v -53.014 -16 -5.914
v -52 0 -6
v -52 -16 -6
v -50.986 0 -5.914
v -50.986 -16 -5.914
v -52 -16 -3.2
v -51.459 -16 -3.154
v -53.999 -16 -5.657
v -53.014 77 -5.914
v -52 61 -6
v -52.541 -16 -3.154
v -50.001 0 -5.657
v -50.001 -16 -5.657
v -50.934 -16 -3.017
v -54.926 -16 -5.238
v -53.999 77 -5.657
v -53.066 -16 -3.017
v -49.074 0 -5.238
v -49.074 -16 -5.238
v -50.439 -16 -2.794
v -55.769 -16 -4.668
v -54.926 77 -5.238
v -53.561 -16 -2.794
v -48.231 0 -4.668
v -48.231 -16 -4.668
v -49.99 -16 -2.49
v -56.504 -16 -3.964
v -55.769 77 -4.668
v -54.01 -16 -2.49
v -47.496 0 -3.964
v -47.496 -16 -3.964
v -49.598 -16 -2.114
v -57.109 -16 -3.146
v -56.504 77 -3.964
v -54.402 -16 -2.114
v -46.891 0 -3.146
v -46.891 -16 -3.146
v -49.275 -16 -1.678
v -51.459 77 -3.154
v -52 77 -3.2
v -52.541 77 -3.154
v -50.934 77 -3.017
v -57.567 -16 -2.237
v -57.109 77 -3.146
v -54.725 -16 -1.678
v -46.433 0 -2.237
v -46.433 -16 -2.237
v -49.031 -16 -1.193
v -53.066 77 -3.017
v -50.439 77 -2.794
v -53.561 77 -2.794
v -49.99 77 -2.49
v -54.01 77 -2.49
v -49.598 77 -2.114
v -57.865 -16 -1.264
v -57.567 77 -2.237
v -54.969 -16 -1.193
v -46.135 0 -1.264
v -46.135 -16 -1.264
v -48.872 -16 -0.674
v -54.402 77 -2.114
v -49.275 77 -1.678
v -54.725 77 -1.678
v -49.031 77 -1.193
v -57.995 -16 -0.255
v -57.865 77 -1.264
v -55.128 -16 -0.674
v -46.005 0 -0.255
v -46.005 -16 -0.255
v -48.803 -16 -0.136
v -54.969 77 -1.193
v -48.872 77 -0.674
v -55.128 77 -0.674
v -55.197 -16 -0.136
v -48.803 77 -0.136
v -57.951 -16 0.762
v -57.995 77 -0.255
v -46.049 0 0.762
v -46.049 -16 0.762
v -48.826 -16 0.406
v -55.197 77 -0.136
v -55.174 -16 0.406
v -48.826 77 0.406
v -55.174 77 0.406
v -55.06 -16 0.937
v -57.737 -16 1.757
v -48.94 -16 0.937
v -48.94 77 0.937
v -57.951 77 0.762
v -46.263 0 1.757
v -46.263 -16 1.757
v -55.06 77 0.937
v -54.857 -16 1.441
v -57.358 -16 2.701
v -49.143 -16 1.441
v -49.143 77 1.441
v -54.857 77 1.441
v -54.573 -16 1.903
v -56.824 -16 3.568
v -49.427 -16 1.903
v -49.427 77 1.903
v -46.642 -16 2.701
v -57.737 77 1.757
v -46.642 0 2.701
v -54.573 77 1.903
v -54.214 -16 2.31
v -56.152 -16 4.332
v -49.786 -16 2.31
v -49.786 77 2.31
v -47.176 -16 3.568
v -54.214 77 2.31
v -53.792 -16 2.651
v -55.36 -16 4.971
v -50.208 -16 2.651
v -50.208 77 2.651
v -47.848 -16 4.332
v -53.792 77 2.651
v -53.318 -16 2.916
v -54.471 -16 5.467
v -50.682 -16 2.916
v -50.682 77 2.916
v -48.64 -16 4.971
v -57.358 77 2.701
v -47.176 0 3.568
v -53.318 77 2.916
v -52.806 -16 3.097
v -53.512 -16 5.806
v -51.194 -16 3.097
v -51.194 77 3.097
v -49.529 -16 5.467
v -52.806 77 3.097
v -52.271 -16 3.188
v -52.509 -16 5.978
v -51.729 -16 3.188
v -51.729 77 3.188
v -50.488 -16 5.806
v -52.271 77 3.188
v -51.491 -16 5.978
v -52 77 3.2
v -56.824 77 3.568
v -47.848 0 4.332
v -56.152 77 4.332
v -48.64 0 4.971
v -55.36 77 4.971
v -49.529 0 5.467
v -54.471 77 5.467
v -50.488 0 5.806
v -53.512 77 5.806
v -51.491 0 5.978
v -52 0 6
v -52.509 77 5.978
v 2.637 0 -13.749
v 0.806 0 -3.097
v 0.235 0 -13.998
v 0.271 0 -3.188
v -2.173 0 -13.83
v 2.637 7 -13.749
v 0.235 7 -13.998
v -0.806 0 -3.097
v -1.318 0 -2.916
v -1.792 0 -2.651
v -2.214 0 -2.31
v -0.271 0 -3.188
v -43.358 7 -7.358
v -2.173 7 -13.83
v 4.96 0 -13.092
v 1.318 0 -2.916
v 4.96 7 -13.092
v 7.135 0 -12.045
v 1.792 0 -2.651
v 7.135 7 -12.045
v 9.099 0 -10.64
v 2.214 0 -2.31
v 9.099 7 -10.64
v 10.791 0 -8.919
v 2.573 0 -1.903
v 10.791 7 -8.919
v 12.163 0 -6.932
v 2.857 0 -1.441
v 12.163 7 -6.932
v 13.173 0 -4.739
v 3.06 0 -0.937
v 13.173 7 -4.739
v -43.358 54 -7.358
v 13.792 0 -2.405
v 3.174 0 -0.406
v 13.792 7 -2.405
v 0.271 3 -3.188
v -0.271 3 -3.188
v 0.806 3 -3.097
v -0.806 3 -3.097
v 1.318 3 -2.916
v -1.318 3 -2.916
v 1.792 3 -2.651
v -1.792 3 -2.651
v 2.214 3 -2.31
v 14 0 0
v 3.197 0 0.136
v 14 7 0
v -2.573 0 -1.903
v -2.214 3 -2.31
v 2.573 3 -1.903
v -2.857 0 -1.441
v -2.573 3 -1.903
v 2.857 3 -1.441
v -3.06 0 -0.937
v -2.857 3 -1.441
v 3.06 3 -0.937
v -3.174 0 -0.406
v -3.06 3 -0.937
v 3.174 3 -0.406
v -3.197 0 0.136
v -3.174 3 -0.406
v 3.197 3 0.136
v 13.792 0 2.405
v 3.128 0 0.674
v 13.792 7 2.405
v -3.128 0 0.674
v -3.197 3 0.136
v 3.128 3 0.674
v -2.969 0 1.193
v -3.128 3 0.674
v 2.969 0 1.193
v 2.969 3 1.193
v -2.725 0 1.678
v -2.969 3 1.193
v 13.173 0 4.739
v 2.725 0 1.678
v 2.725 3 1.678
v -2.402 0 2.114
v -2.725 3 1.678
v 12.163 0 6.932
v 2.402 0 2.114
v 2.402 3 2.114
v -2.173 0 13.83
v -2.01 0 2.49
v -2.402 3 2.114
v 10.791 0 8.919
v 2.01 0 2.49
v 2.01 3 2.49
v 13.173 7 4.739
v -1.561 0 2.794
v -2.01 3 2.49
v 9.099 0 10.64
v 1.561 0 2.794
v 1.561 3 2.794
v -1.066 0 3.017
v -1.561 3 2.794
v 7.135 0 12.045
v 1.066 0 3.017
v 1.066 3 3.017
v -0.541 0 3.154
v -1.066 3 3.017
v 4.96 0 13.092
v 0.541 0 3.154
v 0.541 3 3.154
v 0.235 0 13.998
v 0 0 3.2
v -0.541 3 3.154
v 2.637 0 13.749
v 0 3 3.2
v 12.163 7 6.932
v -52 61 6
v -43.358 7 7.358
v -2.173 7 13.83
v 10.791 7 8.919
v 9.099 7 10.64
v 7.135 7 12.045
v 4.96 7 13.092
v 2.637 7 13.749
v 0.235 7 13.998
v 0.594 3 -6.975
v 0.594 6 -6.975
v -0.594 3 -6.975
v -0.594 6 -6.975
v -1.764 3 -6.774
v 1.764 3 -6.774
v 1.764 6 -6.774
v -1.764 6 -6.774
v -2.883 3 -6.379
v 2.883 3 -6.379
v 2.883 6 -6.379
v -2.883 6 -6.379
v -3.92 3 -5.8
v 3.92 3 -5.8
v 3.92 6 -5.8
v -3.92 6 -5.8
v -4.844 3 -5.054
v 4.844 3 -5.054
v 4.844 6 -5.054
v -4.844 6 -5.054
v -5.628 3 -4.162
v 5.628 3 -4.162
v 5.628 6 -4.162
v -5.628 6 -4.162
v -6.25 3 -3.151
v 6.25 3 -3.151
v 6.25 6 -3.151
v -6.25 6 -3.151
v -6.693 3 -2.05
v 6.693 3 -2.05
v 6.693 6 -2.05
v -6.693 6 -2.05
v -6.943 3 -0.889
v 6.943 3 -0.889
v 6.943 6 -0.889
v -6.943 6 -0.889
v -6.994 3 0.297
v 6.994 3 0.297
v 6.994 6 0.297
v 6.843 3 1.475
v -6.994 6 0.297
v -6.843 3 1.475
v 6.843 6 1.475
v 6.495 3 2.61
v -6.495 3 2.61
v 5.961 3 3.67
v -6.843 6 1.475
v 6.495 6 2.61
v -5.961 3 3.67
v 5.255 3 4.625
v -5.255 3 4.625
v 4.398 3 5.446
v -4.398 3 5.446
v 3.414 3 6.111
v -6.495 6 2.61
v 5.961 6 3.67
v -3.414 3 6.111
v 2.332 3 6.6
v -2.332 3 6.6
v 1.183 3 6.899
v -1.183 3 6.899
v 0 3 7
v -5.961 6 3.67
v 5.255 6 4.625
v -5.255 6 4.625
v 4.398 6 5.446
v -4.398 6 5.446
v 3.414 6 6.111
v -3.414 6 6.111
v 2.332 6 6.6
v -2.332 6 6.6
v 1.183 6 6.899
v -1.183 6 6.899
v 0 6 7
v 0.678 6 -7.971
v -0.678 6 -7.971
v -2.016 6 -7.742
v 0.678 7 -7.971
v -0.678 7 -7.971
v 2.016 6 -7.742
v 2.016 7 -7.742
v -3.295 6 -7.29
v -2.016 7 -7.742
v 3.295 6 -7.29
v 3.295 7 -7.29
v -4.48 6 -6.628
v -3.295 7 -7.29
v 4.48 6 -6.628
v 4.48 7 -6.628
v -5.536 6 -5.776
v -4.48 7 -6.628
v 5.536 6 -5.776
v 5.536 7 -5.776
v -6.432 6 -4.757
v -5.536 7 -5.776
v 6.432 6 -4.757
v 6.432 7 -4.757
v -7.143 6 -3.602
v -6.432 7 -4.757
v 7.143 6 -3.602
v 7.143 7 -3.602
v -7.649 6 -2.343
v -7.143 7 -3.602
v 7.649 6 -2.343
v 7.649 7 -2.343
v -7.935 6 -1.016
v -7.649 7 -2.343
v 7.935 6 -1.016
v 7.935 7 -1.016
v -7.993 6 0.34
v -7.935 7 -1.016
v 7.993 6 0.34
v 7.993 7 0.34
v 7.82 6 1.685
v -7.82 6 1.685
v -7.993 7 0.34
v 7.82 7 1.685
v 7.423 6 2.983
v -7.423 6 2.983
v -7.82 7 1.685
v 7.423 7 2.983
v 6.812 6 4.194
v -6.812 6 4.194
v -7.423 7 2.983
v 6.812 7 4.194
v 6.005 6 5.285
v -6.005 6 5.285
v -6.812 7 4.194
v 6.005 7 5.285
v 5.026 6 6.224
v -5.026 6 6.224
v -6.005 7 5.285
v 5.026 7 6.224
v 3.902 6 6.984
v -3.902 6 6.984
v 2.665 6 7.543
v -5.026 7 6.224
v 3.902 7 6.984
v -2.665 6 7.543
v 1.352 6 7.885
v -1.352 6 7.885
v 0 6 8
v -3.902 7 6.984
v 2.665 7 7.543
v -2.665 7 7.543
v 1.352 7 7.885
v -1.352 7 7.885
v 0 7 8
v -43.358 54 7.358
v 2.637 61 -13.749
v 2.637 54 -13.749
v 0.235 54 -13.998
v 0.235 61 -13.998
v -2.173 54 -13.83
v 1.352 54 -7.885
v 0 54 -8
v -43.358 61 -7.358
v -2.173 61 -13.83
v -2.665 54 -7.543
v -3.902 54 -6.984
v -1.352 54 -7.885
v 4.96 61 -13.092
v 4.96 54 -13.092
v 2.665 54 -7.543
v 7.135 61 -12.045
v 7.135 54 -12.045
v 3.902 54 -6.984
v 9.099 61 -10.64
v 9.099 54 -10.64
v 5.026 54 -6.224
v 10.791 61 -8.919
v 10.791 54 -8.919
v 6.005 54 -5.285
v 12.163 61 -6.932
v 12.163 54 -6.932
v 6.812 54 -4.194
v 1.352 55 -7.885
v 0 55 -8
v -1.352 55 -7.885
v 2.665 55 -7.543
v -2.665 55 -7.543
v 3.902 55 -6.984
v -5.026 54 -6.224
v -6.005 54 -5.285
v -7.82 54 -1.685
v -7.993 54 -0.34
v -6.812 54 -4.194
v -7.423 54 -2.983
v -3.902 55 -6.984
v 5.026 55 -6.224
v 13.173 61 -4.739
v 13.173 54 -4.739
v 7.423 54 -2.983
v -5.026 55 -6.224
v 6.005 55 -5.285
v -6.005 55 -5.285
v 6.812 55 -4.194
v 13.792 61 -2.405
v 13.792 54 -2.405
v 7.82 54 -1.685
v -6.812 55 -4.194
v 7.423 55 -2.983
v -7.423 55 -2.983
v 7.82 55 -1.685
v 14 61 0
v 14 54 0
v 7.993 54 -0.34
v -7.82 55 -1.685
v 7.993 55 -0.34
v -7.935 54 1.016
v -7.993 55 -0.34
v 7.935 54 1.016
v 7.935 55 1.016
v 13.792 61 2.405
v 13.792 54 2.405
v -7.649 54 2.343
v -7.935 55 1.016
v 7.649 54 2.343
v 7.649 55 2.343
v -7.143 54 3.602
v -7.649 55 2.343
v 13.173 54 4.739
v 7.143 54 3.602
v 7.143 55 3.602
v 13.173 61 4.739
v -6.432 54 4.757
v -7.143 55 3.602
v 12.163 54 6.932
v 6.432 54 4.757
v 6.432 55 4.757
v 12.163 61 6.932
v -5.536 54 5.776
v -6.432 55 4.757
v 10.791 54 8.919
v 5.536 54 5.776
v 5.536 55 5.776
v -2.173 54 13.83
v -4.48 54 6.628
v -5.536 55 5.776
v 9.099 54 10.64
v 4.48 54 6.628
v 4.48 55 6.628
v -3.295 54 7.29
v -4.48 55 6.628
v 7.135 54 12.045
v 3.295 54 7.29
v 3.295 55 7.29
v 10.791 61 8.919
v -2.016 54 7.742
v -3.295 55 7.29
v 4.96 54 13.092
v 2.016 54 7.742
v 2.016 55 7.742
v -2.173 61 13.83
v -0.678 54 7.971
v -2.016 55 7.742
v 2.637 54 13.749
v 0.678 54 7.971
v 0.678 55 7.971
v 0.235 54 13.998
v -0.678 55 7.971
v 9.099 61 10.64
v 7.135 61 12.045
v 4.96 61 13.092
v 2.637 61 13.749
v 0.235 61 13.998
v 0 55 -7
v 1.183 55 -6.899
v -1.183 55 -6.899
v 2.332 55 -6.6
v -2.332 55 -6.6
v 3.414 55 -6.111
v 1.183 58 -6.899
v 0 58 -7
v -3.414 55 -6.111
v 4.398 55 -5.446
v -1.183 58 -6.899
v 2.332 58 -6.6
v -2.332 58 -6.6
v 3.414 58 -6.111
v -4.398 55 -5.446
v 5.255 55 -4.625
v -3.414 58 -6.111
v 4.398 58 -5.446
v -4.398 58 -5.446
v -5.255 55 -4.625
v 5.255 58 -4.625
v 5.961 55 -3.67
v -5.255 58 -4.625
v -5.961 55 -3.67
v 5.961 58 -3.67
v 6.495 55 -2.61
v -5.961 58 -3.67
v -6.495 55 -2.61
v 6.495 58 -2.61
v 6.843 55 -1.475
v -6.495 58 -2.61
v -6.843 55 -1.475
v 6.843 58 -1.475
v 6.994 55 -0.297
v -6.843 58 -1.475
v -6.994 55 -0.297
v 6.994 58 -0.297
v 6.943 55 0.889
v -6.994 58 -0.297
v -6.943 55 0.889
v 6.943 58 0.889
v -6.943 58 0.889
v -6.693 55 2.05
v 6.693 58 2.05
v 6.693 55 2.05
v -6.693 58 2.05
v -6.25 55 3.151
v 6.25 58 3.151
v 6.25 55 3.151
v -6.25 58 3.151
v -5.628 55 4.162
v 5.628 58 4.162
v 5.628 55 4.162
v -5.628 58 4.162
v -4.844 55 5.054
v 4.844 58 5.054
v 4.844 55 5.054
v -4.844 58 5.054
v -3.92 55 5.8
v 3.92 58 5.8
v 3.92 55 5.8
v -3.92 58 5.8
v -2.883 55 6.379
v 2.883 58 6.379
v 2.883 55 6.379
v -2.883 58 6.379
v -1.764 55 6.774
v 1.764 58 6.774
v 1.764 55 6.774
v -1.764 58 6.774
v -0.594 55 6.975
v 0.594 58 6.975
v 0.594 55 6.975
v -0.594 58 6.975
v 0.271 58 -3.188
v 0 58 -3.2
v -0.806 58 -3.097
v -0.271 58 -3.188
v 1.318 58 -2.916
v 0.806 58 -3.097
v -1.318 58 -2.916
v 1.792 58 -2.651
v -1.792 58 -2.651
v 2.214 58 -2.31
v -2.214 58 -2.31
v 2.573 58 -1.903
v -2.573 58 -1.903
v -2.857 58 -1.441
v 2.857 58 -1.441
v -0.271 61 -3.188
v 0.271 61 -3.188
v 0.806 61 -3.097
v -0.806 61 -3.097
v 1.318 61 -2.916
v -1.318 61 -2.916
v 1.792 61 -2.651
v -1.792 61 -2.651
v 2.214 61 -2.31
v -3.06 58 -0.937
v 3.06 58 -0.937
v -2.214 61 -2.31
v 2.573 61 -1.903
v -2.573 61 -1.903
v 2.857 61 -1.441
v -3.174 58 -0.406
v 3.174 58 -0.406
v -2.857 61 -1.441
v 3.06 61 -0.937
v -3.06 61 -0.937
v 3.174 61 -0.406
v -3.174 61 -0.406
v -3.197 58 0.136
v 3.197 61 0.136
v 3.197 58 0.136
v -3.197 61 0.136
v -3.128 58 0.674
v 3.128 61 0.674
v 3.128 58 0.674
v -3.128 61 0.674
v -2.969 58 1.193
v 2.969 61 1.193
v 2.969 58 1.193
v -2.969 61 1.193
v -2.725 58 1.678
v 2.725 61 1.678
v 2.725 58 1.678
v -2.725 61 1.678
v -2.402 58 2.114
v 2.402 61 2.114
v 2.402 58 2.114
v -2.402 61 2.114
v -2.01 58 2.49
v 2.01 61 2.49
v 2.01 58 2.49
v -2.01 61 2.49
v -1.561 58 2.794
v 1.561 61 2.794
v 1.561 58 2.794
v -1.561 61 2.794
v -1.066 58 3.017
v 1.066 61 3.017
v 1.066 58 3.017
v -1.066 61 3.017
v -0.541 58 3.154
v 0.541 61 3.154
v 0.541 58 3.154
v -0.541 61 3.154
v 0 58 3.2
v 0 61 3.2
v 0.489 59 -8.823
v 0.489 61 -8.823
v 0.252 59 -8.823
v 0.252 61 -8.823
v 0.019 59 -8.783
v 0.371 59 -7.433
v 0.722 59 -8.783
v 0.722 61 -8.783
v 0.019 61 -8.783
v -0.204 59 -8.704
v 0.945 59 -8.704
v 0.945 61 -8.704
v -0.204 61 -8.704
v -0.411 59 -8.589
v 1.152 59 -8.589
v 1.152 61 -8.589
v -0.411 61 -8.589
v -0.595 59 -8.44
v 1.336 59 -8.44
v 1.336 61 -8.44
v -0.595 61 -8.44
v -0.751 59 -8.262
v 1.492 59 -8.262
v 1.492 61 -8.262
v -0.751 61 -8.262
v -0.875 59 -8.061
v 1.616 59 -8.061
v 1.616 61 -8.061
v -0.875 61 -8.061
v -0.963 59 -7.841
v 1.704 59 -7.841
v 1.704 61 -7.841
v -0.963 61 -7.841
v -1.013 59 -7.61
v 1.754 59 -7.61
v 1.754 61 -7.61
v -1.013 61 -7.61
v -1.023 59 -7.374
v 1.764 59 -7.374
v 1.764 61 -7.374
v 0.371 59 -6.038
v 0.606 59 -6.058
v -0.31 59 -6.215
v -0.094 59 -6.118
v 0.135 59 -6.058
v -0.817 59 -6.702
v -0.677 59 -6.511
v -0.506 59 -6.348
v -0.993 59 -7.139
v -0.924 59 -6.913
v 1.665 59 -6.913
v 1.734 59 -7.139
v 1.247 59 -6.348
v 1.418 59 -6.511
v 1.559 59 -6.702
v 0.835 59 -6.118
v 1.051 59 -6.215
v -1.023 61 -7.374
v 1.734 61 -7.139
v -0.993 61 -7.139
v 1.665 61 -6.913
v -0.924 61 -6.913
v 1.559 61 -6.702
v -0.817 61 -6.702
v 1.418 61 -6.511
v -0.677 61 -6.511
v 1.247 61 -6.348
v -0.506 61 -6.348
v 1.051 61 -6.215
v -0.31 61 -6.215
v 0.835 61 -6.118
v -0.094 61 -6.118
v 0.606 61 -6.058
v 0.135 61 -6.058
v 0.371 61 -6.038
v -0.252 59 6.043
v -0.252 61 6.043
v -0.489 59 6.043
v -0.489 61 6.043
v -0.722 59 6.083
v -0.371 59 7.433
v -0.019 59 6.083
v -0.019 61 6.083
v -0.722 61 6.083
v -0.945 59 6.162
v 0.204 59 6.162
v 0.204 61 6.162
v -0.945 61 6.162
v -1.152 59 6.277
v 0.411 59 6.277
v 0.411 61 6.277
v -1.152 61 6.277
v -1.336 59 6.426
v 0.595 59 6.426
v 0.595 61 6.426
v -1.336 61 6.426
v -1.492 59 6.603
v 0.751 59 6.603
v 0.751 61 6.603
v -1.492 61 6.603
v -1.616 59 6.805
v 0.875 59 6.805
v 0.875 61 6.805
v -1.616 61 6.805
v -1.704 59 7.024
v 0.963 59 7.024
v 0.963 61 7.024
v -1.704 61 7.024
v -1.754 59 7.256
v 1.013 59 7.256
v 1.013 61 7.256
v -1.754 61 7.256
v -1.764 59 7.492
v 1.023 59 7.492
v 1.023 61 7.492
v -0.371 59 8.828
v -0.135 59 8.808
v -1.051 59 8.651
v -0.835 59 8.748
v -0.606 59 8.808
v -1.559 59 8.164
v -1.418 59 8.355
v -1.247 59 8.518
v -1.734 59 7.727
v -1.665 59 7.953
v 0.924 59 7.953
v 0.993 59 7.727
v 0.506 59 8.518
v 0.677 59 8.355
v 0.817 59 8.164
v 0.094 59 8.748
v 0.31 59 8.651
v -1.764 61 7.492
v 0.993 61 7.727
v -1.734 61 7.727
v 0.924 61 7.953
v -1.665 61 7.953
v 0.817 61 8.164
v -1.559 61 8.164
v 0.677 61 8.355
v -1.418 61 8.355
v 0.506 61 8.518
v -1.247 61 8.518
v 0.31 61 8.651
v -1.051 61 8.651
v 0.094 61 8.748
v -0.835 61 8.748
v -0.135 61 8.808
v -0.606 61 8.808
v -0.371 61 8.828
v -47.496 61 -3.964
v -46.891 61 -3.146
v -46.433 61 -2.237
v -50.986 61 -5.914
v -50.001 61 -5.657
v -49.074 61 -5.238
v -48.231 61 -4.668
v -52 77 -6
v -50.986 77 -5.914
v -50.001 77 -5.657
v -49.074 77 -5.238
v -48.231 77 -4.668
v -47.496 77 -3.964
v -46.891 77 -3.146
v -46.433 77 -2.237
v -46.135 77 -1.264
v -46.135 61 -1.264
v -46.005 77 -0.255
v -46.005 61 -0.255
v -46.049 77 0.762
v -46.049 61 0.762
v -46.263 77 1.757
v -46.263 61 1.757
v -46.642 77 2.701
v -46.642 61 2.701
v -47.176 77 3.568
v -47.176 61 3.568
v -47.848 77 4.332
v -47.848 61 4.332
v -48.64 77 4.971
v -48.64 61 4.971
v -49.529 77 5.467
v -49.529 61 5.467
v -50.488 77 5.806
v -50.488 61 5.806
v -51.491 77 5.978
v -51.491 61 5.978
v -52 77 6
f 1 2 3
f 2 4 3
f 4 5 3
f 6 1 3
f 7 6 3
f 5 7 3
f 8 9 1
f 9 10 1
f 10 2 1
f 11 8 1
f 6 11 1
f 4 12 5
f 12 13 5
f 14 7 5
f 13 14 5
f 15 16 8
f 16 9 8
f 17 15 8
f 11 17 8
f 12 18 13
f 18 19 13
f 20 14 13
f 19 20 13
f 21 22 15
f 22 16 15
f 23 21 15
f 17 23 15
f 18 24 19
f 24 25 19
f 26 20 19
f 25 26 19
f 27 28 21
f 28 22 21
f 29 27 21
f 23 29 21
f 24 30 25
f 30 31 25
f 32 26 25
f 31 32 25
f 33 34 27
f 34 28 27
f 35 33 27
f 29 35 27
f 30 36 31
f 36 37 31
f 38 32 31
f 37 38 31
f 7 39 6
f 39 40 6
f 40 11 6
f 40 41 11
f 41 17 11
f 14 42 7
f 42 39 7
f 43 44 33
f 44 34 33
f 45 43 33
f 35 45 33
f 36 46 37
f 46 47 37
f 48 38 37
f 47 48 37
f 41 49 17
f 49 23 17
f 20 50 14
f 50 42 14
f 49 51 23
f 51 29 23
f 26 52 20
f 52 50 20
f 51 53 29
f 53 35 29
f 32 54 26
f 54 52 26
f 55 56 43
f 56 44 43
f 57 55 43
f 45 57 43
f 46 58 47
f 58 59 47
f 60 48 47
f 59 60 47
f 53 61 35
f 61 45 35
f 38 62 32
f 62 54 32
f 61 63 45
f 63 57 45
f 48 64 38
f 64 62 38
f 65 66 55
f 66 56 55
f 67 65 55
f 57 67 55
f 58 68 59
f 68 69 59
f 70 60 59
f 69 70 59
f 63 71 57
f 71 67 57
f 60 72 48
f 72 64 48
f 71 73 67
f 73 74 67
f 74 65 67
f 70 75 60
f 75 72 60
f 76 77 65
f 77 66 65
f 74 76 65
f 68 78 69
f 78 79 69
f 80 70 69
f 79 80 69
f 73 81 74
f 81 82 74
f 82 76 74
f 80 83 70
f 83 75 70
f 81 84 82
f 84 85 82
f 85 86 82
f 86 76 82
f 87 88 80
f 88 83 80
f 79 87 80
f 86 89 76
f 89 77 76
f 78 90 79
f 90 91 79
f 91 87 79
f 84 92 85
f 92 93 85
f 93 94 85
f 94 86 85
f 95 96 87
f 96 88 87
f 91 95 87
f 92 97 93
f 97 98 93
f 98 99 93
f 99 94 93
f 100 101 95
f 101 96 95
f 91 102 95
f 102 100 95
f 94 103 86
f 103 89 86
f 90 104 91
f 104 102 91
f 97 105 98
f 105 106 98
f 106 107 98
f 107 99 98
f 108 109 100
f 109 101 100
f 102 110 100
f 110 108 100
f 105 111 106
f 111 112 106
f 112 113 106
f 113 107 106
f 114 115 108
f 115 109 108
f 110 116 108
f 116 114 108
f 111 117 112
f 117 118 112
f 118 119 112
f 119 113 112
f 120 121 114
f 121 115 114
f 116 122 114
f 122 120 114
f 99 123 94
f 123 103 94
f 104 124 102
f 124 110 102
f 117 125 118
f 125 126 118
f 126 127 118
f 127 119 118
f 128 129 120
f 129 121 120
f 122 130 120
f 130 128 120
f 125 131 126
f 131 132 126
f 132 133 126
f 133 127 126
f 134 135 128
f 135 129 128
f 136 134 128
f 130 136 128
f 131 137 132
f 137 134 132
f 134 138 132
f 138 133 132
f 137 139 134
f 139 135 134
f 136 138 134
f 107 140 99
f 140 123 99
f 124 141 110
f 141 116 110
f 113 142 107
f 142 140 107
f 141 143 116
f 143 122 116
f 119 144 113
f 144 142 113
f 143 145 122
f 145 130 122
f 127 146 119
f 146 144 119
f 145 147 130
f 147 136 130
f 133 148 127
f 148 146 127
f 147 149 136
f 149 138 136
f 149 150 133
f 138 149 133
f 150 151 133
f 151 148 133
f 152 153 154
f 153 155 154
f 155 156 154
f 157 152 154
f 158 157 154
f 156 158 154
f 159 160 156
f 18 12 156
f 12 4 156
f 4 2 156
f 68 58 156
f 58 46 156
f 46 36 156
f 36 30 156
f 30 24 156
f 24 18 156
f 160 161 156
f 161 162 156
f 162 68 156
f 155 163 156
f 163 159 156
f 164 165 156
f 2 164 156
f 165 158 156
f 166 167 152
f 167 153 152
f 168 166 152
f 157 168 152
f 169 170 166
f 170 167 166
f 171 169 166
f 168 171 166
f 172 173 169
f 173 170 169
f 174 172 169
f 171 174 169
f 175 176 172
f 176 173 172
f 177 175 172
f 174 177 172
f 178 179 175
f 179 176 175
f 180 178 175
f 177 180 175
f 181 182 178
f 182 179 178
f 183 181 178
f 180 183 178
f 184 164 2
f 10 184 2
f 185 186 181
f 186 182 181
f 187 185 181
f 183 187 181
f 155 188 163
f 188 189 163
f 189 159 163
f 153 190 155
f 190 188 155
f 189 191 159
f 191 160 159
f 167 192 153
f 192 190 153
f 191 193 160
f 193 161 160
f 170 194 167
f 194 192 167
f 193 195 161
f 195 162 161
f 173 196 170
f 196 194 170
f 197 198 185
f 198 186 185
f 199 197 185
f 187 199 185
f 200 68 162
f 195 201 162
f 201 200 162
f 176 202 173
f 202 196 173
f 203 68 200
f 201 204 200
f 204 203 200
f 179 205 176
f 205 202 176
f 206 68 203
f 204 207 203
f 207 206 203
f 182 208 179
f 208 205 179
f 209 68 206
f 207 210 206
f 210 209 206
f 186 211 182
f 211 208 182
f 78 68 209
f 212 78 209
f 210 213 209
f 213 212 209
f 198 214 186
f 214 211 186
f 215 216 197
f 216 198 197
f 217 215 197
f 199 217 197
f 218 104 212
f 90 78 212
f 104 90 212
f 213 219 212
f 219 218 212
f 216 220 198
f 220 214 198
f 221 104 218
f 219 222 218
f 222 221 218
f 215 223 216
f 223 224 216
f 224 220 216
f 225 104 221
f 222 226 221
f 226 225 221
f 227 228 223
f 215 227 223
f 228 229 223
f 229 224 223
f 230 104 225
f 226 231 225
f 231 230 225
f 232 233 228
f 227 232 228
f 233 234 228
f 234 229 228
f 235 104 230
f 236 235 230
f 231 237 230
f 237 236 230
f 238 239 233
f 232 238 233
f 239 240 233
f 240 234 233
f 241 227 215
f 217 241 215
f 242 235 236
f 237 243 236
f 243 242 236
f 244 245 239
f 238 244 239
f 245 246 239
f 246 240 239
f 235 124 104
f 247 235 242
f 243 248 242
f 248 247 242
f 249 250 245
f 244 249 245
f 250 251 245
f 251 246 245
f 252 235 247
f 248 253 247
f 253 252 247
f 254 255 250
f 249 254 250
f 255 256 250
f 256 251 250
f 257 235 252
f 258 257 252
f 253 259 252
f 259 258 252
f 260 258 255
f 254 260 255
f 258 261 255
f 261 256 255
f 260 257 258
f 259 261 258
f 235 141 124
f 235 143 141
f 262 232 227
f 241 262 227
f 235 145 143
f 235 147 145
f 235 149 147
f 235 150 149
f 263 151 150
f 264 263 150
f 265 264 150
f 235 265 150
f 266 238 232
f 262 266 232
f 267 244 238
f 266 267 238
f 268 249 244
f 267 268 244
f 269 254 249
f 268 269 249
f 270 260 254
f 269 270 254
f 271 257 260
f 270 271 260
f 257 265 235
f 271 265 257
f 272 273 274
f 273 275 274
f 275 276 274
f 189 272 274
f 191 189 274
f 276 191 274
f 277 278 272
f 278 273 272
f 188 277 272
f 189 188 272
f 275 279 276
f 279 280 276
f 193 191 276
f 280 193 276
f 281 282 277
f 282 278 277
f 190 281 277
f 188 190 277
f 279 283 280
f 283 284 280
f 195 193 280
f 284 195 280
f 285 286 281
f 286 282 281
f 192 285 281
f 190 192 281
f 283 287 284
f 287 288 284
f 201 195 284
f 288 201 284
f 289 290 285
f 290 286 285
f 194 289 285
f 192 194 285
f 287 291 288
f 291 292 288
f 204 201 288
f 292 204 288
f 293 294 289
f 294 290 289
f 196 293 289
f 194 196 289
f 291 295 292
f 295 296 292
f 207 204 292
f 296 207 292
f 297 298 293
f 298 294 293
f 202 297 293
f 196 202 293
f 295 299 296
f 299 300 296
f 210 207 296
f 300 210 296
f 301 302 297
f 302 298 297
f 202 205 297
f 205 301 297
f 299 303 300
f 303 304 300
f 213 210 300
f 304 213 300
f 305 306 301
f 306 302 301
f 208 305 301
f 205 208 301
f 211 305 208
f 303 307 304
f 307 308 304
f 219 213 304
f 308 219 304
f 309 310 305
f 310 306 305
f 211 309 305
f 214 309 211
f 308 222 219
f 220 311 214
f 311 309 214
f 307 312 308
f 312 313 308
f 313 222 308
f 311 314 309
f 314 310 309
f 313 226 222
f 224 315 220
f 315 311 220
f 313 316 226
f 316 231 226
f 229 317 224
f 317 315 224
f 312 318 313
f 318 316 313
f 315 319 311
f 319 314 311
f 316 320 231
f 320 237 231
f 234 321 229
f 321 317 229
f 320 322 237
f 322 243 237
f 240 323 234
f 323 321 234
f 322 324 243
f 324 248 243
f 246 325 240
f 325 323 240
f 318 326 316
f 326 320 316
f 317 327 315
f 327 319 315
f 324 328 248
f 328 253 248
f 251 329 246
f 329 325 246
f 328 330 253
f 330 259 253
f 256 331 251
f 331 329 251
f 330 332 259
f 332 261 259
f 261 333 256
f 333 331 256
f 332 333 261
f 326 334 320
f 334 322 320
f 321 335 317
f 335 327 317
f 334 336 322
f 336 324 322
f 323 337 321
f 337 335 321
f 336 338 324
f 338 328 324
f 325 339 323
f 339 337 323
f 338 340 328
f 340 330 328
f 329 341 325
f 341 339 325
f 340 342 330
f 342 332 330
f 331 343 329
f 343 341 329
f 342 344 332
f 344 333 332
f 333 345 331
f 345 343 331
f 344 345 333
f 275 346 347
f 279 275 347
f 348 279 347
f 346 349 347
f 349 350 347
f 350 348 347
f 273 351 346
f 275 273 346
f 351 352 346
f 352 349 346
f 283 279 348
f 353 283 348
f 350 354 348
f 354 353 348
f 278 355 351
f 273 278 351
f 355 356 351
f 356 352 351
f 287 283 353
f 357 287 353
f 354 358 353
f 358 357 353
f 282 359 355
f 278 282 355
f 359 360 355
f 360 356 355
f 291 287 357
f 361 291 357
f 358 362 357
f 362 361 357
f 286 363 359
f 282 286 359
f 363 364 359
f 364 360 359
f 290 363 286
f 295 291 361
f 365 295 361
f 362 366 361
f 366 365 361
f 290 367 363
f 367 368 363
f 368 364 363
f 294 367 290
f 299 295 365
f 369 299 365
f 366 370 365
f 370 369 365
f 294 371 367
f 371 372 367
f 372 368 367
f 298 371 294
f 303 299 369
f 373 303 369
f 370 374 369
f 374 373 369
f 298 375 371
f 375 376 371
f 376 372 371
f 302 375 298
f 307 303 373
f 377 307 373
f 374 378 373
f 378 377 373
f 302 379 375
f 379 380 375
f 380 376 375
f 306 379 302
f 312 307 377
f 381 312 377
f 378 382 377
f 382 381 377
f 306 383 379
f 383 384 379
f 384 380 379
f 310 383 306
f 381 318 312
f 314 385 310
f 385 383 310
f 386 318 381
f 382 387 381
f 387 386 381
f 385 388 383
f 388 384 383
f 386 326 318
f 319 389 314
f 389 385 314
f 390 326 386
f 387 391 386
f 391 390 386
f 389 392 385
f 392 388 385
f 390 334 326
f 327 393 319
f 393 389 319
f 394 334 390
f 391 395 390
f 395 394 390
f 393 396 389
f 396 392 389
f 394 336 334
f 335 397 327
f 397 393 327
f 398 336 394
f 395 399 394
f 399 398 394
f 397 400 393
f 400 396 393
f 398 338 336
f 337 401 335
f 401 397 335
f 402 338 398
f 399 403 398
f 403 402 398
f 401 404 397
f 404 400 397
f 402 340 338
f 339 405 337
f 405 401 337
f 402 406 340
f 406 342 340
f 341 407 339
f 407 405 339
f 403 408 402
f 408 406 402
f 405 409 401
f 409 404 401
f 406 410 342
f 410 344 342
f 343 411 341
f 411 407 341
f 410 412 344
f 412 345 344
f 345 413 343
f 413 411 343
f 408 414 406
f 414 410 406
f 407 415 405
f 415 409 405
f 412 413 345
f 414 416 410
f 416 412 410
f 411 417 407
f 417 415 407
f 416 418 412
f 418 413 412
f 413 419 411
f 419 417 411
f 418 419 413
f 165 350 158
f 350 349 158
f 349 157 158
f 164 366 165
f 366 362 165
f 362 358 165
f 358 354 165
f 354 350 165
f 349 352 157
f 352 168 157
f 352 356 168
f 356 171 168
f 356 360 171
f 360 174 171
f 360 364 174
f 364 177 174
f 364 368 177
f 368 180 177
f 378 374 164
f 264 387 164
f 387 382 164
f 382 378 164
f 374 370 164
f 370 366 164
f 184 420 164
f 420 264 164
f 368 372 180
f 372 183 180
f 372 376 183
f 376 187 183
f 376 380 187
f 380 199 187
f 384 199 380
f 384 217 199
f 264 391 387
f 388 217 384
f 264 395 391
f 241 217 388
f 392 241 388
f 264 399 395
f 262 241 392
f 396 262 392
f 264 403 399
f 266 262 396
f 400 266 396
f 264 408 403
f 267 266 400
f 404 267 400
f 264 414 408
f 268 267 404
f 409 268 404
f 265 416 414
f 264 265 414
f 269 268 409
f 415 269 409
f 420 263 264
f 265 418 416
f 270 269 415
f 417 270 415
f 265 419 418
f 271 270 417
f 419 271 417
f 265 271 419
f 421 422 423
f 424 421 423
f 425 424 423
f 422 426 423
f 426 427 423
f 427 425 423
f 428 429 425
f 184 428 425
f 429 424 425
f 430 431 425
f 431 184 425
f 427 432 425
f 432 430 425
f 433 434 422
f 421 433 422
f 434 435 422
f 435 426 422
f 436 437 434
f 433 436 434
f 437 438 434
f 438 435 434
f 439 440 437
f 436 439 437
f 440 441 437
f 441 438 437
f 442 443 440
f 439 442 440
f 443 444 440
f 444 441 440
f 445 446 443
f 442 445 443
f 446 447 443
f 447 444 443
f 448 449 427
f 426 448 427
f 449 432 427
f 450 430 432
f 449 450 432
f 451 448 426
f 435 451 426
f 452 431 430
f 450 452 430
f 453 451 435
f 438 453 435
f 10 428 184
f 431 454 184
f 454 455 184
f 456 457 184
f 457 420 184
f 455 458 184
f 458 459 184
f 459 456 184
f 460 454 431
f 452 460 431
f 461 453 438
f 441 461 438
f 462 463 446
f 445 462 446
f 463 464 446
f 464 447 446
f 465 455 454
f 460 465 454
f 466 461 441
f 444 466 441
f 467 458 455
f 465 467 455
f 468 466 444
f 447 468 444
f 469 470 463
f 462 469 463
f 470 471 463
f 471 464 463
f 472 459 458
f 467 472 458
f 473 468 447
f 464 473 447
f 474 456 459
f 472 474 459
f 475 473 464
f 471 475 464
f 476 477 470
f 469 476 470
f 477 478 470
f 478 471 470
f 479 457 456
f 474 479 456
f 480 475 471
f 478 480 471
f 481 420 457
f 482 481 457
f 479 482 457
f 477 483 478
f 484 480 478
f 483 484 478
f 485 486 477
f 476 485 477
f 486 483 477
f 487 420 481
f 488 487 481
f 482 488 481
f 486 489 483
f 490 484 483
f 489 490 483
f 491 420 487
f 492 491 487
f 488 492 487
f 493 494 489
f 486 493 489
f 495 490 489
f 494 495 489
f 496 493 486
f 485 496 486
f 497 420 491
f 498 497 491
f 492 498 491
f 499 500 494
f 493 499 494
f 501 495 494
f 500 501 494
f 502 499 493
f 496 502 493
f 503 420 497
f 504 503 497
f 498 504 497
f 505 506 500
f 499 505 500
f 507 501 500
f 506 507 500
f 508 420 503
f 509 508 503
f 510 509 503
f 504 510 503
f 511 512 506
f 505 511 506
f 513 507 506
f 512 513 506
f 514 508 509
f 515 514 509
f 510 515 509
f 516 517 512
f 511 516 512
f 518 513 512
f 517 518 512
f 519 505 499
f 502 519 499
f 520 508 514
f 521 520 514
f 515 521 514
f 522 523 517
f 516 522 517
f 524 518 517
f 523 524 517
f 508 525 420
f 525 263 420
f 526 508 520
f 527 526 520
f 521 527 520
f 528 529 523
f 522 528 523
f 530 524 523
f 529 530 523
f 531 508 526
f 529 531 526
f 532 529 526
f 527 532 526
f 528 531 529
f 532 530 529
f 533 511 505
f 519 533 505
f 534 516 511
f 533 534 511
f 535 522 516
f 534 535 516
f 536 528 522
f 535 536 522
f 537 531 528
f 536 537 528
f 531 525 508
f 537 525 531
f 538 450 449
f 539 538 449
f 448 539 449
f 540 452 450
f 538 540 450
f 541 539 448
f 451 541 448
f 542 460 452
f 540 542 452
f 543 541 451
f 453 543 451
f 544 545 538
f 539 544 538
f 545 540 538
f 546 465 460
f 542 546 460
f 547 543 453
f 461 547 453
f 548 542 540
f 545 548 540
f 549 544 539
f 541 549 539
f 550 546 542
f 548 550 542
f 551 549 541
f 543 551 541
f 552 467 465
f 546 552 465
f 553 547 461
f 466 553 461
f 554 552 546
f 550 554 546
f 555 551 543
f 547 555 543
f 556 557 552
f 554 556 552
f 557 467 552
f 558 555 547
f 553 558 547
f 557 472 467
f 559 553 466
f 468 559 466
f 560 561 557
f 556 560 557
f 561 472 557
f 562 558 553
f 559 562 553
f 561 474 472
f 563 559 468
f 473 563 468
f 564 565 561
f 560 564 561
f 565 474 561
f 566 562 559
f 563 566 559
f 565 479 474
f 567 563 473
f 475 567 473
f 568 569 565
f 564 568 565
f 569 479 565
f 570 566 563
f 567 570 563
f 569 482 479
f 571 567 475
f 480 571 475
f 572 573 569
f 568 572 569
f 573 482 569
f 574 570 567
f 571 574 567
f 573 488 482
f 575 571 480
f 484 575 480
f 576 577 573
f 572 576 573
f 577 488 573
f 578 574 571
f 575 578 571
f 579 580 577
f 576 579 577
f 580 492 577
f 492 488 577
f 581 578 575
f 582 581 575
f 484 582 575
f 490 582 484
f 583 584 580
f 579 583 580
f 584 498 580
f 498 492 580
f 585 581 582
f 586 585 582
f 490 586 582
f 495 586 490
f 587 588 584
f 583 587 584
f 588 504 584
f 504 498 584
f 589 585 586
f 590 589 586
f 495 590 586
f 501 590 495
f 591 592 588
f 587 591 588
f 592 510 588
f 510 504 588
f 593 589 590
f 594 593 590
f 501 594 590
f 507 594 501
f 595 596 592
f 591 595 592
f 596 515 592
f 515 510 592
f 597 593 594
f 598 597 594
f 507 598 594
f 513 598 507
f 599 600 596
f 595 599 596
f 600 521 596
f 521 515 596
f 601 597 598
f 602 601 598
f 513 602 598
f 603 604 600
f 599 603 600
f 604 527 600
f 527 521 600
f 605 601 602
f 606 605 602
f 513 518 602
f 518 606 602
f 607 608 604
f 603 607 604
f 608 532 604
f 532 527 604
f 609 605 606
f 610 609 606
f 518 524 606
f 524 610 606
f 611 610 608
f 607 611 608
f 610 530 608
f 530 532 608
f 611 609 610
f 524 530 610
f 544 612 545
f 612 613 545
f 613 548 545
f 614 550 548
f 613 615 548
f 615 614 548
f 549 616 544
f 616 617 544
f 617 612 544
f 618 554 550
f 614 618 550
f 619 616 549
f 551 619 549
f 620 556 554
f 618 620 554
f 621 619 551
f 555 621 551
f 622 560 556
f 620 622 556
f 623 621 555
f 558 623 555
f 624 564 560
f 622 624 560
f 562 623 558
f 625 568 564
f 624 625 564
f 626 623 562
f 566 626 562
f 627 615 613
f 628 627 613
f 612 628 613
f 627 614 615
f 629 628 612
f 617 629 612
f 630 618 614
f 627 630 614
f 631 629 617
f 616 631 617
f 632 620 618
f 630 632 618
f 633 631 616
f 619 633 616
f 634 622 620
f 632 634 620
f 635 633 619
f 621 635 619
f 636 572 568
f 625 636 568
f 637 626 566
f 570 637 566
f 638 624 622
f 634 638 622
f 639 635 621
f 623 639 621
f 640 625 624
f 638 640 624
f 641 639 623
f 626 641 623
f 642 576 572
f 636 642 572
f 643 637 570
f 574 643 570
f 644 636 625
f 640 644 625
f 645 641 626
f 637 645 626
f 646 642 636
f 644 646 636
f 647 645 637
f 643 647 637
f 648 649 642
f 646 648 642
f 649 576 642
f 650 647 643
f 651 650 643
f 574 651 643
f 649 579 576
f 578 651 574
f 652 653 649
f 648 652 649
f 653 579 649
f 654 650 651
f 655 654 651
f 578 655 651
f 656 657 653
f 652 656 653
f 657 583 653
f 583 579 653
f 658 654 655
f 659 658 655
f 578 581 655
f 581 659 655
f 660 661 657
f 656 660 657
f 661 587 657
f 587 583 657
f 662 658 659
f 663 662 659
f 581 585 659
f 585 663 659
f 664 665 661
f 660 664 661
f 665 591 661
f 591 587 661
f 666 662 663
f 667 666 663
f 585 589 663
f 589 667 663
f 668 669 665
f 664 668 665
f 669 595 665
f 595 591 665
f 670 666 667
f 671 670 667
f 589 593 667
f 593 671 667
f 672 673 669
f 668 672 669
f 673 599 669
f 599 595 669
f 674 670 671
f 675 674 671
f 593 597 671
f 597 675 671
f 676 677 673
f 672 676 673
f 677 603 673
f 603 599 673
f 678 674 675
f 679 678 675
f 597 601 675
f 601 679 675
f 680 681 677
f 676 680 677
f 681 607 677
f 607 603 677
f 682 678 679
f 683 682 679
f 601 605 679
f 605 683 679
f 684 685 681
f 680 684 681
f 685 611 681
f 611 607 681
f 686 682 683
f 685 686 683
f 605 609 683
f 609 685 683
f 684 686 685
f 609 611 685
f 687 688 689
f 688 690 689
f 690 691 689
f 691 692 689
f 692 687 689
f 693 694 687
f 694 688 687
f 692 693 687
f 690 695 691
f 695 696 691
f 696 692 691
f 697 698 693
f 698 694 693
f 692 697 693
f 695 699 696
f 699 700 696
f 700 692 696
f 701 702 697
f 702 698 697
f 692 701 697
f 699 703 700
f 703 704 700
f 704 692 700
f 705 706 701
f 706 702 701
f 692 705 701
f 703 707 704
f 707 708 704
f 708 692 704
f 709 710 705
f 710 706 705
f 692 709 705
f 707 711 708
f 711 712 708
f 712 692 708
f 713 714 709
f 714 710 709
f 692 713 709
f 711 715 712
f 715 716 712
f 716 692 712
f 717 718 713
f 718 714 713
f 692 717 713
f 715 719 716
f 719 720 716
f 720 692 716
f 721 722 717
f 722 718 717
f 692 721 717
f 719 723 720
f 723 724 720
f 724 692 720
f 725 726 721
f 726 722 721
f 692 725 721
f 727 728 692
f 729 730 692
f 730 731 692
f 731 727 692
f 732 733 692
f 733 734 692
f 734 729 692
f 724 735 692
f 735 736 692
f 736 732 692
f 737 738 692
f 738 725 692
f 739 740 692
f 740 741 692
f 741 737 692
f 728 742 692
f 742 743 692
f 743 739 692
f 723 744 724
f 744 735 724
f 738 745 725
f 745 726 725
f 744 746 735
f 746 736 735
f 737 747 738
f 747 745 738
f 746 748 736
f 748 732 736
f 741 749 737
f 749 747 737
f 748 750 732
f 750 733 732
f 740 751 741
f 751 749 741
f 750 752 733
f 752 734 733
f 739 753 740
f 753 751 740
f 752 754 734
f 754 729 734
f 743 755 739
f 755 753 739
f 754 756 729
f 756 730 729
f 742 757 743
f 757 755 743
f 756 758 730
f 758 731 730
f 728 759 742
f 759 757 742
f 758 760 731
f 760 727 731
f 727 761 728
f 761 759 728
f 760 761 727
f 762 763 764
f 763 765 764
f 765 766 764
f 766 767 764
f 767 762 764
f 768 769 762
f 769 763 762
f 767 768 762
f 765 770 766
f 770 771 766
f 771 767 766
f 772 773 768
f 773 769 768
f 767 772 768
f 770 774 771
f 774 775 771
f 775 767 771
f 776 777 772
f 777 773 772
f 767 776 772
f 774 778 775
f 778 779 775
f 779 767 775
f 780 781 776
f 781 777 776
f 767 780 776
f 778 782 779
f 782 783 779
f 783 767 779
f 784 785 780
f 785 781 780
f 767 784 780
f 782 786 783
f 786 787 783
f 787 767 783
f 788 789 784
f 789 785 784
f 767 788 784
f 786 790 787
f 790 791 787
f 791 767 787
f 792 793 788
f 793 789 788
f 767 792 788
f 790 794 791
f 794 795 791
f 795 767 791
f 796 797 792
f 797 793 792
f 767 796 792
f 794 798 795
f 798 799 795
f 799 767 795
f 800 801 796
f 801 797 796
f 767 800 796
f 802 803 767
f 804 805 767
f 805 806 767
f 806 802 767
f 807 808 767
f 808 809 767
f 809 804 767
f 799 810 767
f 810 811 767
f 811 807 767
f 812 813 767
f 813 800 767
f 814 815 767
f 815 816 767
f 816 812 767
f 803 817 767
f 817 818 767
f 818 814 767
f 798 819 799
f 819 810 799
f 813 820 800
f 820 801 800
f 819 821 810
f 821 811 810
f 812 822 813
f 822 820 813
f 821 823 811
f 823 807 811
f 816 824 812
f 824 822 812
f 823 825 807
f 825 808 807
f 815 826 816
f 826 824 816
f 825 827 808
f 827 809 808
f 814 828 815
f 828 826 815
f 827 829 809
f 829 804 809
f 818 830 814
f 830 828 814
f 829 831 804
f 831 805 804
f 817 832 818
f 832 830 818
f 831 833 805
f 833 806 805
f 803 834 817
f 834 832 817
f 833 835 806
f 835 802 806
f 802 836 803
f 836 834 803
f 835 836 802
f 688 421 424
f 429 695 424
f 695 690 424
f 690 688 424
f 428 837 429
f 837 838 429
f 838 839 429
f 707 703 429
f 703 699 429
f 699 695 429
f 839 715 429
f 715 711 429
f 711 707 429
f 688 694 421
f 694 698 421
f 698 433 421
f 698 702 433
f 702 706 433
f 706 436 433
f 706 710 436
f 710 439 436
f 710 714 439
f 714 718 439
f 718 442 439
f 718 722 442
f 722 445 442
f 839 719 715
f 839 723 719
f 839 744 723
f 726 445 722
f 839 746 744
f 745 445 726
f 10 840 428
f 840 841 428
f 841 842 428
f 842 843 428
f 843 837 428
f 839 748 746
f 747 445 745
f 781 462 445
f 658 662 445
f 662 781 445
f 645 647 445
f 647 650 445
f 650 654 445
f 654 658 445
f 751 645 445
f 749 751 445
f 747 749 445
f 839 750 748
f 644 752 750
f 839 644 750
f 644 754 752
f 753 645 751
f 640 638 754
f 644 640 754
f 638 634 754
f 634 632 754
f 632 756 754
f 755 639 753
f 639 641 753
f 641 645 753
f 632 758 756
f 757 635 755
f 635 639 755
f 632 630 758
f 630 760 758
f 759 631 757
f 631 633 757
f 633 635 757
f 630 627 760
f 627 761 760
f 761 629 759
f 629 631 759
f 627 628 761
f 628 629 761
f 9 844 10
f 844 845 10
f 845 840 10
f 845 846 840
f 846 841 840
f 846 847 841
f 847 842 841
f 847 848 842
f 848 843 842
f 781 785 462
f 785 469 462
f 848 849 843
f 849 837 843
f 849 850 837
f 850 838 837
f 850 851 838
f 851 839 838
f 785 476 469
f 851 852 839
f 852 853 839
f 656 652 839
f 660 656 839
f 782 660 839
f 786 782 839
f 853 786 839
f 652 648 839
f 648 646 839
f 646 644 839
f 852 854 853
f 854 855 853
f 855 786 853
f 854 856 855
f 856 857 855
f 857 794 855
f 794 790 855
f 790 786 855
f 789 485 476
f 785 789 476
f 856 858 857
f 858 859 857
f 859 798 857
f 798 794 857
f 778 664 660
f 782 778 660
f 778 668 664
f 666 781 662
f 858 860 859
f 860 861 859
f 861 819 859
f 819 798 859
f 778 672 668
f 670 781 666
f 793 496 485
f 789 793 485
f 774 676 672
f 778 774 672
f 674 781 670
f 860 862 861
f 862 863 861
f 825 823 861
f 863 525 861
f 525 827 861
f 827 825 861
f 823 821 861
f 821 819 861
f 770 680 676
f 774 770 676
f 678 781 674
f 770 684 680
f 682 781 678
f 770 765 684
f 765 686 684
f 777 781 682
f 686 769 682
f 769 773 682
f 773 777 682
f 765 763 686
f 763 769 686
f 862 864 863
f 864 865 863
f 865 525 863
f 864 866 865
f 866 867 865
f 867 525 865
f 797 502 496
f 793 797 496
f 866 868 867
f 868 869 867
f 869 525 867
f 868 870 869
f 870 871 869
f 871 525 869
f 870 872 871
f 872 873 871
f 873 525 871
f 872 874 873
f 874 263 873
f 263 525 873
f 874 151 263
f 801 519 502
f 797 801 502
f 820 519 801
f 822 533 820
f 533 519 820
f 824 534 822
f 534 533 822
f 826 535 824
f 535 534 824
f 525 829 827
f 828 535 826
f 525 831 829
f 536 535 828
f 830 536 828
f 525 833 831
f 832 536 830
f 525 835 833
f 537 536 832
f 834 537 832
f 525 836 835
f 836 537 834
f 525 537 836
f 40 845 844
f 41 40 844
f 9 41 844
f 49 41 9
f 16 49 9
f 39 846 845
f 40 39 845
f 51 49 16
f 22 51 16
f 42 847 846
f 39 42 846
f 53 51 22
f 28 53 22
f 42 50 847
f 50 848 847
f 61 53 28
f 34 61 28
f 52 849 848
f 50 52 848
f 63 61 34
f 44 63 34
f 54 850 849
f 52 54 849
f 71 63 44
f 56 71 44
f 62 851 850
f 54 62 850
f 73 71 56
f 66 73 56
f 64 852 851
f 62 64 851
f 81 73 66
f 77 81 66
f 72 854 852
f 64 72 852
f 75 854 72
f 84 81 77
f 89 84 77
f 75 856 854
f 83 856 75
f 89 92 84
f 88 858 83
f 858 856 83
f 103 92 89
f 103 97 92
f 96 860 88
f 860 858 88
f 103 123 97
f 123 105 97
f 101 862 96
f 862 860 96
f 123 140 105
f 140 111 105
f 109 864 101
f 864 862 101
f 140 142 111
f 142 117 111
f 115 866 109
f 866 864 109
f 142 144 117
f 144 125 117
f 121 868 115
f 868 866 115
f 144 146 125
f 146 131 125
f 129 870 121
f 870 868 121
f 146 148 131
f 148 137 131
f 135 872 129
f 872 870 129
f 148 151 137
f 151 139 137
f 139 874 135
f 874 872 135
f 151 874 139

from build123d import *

# Parameters (mm, degrees)
SKETCH1_R               = 3.2
BOSS_EXTRUDE1_DEPTH     = 7
SKETCH2_R               = 3.2
BOSS_EXTRUDE2_DEPTH     = 47
BOSS_EXTRUDE3_OUTLINE_R = 3.2
BOSS_EXTRUDE3_DEPTH     = 7
CUT_EXTRUDE1_DEPTH      = 86.32877599
CUT_EXTRUDE1_DEPTH_BACK = 86.32877599
SKETCH5_R               = 3.2
SKETCH6_R               = 1.395
CUT_EXTRUDE2_DEPTH      = 2
SKETCH7_R               = 7
CUT_EXTRUDE3_DEPTH      = 4
SKETCH8_R               = 8
CUT_EXTRUDE4_DEPTH      = 1
CUT_EXTRUDE5_START      = -4
SKETCH9_R               = 7
CUT_EXTRUDE5_DEPTH      = 4
CUT_EXTRUDE6_START      = -1
SKETCH10_R              = 8
CUT_EXTRUDE6_DEPTH      = 1
SKETCH11_R              = 6
SKETCH11_R_2            = 3.2
BOSS_EXTRUDE4_DEPTH     = 16
BOSS_EXTRUDE5_START     = 16
SKETCH12_R              = 6
SKETCH12_R_2            = 3.2
BOSS_EXTRUDE5_DEPTH     = 16


# Read off the part's stored shape, not the designer's step: Boss-Extrude3
with BuildPart() as part:
    # Sketch1 → Boss-Extrude1 (new body)
    with BuildSketch(Plane(origin=(0, 0, 0), x_dir=(1, 0, 0), z_dir=(0, 1, 0))):
        with BuildLine():
            ThreePointArc((-52, 6), (-58, 0), (-52, -6))
            Line((-52, -6), (-2.173431493, -13.830264184))
            ThreePointArc((-2.173431493, -13.830264184), (14.000000424, -1.65e-07), (-2.173431166, 13.830264236))
            Line((-2.173431166, 13.830264236), (-52, 6))
        make_face()
        with Locations(Location((-52, 0, 0), (0, 0, 270))):
            Circle(SKETCH1_R, mode=Mode.SUBTRACT)
    extrude(amount=BOSS_EXTRUDE1_DEPTH)

    # Sketch2 → Boss-Extrude2 (add)
    # profile 1 of 2: a face of its own
    with BuildSketch(Plane(origin=(0, 7, 0), x_dir=(1, 0, 0), z_dir=(0, 1, 0))):
        with BuildLine():
            ThreePointArc((-46, 0), (-47.757359313, 4.242640687), (-52, 6))
            ThreePointArc((-52, 6), (-58, 0), (-52, -6))
            ThreePointArc((-52, -6), (-47.757359313, -4.242640687), (-46, 0))
        make_face()
        with Locations(Location((-52, 0, 0), (0, 0, 270))):
            Circle(SKETCH2_R, mode=Mode.SUBTRACT)
    # profile 2 of 2: a face of its own
    with BuildSketch(Plane(origin=(0, 7, 0), x_dir=(1, 0, 0), z_dir=(0, 1, 0))):
        with BuildLine():
            Line((-43.357698304, -7.358140997), (-43.357698304, 7.358140997))
            Line((-43.357698304, 7.358140997), (-52, 6))
            ThreePointArc((-52, 6), (-47.757359313, 4.242640687), (-46, 0))
            ThreePointArc((-46, 0), (-47.757359313, -4.242640687), (-52, -6))
            Line((-52, -6), (-43.357698304, -7.358140997))
        make_face()
    extrude(amount=BOSS_EXTRUDE2_DEPTH)

    # Boss-Extrude3 outline → Boss-Extrude3 (add)
    with BuildSketch(Plane(origin=(0, 54, 0), x_dir=(1, 0, 0), z_dir=(0, 1, 0))):
        with BuildLine():
            ThreePointArc((-2.17343128, -13.830264218), (14.000000424, -1.07e-07), (-2.173431068, 13.830264251))
            Line((-2.173431068, 13.830264251), (-52, 6))
            ThreePointArc((-52, 6), (-58, 0), (-52, -6))
            Line((-52, -6), (-2.17343128, -13.830264218))
        make_face()
        with Locations((-52, 0)):
            Circle(BOSS_EXTRUDE3_OUTLINE_R, mode=Mode.SUBTRACT)
    extrude(amount=BOSS_EXTRUDE3_DEPTH)

    # Sketch5 → Cut-Extrude1 (cut, two sides: drawn at the far end of the back side and taken through both)
    with BuildSketch(Plane(origin=(0, 61, 0), x_dir=(1, 0, 0), z_dir=(0, 1, 0)).offset(-CUT_EXTRUDE1_DEPTH_BACK)):
        with Locations(Location((0, 0, 0), (0, 0, 270))):
            Circle(SKETCH5_R)
    extrude(amount=CUT_EXTRUDE1_DEPTH + CUT_EXTRUDE1_DEPTH_BACK, mode=Mode.SUBTRACT)

    # Sketch6 → Cut-Extrude2 (cut)
    with BuildSketch(Plane(origin=(0, 61, 0), x_dir=(1, 0, 0), z_dir=(0, 1, 0))):
        with Locations(Location((-0.370638007, -7.432964974, 0), (0, 0, 270))):
            Circle(SKETCH6_R)
        with Locations(Location((0.370638007, 7.432964974, 0), (0, 0, 270))):
            Circle(SKETCH6_R)
    extrude(amount=-CUT_EXTRUDE2_DEPTH, mode=Mode.SUBTRACT)

    # Sketch7 → Cut-Extrude3 (cut)
    with BuildSketch(Plane.XZ.offset(-54)):
        with Locations(Location((0, 0, 0), (0, 0, 270))):
            Circle(SKETCH7_R)
    extrude(amount=-CUT_EXTRUDE3_DEPTH, mode=Mode.SUBTRACT)

    # Sketch8 → Cut-Extrude4 (cut)
    with BuildSketch(Plane.XZ.offset(-54)):
        with Locations(Location((0, 0, 0), (0, 0, 270))):
            Circle(SKETCH8_R)
    extrude(amount=-CUT_EXTRUDE4_DEPTH, mode=Mode.SUBTRACT)

    # Sketch9 → Cut-Extrude5 (cut)
    with BuildSketch(Plane(origin=(0, 7, 0), x_dir=(1, 0, 0), z_dir=(0, 1, 0)).offset(CUT_EXTRUDE5_START)):
        with Locations(Location((0, 0, 0), (0, 0, 90))):
            Circle(SKETCH9_R)
    extrude(amount=CUT_EXTRUDE5_DEPTH, mode=Mode.SUBTRACT)

    # Sketch10 → Cut-Extrude6 (cut)
    with BuildSketch(Plane(origin=(0, 7, 0), x_dir=(1, 0, 0), z_dir=(0, 1, 0)).offset(CUT_EXTRUDE6_START)):
        with Locations(Location((0, 0, 0), (0, 0, 90))):
            Circle(SKETCH10_R)
    extrude(amount=CUT_EXTRUDE6_DEPTH, mode=Mode.SUBTRACT)

    # Sketch11 → Boss-Extrude4 (add)
    with BuildSketch(Plane(origin=(0, 61, 0), x_dir=(1, 0, 0), z_dir=(0, 1, 0))):
        with Locations(Location((-52, 0, 0), (0, 0, 270))):
            Circle(SKETCH11_R)
        with Locations(Location((-52, 0, 0), (0, 0, 270))):
            Circle(SKETCH11_R_2, mode=Mode.SUBTRACT)
    extrude(amount=BOSS_EXTRUDE4_DEPTH)

    # Sketch12 → Boss-Extrude5 (add)
    with BuildSketch(Plane.XZ.offset(BOSS_EXTRUDE5_START)):
        with Locations(Location((-52, 0, 0), (0, 0, 270))):
            Circle(SKETCH12_R)
        with Locations(Location((-52, 0, 0), (0, 0, 270))):
            Circle(SKETCH12_R_2, mode=Mode.SUBTRACT)
    extrude(amount=-BOSS_EXTRUDE5_DEPTH)


solid = part.part
